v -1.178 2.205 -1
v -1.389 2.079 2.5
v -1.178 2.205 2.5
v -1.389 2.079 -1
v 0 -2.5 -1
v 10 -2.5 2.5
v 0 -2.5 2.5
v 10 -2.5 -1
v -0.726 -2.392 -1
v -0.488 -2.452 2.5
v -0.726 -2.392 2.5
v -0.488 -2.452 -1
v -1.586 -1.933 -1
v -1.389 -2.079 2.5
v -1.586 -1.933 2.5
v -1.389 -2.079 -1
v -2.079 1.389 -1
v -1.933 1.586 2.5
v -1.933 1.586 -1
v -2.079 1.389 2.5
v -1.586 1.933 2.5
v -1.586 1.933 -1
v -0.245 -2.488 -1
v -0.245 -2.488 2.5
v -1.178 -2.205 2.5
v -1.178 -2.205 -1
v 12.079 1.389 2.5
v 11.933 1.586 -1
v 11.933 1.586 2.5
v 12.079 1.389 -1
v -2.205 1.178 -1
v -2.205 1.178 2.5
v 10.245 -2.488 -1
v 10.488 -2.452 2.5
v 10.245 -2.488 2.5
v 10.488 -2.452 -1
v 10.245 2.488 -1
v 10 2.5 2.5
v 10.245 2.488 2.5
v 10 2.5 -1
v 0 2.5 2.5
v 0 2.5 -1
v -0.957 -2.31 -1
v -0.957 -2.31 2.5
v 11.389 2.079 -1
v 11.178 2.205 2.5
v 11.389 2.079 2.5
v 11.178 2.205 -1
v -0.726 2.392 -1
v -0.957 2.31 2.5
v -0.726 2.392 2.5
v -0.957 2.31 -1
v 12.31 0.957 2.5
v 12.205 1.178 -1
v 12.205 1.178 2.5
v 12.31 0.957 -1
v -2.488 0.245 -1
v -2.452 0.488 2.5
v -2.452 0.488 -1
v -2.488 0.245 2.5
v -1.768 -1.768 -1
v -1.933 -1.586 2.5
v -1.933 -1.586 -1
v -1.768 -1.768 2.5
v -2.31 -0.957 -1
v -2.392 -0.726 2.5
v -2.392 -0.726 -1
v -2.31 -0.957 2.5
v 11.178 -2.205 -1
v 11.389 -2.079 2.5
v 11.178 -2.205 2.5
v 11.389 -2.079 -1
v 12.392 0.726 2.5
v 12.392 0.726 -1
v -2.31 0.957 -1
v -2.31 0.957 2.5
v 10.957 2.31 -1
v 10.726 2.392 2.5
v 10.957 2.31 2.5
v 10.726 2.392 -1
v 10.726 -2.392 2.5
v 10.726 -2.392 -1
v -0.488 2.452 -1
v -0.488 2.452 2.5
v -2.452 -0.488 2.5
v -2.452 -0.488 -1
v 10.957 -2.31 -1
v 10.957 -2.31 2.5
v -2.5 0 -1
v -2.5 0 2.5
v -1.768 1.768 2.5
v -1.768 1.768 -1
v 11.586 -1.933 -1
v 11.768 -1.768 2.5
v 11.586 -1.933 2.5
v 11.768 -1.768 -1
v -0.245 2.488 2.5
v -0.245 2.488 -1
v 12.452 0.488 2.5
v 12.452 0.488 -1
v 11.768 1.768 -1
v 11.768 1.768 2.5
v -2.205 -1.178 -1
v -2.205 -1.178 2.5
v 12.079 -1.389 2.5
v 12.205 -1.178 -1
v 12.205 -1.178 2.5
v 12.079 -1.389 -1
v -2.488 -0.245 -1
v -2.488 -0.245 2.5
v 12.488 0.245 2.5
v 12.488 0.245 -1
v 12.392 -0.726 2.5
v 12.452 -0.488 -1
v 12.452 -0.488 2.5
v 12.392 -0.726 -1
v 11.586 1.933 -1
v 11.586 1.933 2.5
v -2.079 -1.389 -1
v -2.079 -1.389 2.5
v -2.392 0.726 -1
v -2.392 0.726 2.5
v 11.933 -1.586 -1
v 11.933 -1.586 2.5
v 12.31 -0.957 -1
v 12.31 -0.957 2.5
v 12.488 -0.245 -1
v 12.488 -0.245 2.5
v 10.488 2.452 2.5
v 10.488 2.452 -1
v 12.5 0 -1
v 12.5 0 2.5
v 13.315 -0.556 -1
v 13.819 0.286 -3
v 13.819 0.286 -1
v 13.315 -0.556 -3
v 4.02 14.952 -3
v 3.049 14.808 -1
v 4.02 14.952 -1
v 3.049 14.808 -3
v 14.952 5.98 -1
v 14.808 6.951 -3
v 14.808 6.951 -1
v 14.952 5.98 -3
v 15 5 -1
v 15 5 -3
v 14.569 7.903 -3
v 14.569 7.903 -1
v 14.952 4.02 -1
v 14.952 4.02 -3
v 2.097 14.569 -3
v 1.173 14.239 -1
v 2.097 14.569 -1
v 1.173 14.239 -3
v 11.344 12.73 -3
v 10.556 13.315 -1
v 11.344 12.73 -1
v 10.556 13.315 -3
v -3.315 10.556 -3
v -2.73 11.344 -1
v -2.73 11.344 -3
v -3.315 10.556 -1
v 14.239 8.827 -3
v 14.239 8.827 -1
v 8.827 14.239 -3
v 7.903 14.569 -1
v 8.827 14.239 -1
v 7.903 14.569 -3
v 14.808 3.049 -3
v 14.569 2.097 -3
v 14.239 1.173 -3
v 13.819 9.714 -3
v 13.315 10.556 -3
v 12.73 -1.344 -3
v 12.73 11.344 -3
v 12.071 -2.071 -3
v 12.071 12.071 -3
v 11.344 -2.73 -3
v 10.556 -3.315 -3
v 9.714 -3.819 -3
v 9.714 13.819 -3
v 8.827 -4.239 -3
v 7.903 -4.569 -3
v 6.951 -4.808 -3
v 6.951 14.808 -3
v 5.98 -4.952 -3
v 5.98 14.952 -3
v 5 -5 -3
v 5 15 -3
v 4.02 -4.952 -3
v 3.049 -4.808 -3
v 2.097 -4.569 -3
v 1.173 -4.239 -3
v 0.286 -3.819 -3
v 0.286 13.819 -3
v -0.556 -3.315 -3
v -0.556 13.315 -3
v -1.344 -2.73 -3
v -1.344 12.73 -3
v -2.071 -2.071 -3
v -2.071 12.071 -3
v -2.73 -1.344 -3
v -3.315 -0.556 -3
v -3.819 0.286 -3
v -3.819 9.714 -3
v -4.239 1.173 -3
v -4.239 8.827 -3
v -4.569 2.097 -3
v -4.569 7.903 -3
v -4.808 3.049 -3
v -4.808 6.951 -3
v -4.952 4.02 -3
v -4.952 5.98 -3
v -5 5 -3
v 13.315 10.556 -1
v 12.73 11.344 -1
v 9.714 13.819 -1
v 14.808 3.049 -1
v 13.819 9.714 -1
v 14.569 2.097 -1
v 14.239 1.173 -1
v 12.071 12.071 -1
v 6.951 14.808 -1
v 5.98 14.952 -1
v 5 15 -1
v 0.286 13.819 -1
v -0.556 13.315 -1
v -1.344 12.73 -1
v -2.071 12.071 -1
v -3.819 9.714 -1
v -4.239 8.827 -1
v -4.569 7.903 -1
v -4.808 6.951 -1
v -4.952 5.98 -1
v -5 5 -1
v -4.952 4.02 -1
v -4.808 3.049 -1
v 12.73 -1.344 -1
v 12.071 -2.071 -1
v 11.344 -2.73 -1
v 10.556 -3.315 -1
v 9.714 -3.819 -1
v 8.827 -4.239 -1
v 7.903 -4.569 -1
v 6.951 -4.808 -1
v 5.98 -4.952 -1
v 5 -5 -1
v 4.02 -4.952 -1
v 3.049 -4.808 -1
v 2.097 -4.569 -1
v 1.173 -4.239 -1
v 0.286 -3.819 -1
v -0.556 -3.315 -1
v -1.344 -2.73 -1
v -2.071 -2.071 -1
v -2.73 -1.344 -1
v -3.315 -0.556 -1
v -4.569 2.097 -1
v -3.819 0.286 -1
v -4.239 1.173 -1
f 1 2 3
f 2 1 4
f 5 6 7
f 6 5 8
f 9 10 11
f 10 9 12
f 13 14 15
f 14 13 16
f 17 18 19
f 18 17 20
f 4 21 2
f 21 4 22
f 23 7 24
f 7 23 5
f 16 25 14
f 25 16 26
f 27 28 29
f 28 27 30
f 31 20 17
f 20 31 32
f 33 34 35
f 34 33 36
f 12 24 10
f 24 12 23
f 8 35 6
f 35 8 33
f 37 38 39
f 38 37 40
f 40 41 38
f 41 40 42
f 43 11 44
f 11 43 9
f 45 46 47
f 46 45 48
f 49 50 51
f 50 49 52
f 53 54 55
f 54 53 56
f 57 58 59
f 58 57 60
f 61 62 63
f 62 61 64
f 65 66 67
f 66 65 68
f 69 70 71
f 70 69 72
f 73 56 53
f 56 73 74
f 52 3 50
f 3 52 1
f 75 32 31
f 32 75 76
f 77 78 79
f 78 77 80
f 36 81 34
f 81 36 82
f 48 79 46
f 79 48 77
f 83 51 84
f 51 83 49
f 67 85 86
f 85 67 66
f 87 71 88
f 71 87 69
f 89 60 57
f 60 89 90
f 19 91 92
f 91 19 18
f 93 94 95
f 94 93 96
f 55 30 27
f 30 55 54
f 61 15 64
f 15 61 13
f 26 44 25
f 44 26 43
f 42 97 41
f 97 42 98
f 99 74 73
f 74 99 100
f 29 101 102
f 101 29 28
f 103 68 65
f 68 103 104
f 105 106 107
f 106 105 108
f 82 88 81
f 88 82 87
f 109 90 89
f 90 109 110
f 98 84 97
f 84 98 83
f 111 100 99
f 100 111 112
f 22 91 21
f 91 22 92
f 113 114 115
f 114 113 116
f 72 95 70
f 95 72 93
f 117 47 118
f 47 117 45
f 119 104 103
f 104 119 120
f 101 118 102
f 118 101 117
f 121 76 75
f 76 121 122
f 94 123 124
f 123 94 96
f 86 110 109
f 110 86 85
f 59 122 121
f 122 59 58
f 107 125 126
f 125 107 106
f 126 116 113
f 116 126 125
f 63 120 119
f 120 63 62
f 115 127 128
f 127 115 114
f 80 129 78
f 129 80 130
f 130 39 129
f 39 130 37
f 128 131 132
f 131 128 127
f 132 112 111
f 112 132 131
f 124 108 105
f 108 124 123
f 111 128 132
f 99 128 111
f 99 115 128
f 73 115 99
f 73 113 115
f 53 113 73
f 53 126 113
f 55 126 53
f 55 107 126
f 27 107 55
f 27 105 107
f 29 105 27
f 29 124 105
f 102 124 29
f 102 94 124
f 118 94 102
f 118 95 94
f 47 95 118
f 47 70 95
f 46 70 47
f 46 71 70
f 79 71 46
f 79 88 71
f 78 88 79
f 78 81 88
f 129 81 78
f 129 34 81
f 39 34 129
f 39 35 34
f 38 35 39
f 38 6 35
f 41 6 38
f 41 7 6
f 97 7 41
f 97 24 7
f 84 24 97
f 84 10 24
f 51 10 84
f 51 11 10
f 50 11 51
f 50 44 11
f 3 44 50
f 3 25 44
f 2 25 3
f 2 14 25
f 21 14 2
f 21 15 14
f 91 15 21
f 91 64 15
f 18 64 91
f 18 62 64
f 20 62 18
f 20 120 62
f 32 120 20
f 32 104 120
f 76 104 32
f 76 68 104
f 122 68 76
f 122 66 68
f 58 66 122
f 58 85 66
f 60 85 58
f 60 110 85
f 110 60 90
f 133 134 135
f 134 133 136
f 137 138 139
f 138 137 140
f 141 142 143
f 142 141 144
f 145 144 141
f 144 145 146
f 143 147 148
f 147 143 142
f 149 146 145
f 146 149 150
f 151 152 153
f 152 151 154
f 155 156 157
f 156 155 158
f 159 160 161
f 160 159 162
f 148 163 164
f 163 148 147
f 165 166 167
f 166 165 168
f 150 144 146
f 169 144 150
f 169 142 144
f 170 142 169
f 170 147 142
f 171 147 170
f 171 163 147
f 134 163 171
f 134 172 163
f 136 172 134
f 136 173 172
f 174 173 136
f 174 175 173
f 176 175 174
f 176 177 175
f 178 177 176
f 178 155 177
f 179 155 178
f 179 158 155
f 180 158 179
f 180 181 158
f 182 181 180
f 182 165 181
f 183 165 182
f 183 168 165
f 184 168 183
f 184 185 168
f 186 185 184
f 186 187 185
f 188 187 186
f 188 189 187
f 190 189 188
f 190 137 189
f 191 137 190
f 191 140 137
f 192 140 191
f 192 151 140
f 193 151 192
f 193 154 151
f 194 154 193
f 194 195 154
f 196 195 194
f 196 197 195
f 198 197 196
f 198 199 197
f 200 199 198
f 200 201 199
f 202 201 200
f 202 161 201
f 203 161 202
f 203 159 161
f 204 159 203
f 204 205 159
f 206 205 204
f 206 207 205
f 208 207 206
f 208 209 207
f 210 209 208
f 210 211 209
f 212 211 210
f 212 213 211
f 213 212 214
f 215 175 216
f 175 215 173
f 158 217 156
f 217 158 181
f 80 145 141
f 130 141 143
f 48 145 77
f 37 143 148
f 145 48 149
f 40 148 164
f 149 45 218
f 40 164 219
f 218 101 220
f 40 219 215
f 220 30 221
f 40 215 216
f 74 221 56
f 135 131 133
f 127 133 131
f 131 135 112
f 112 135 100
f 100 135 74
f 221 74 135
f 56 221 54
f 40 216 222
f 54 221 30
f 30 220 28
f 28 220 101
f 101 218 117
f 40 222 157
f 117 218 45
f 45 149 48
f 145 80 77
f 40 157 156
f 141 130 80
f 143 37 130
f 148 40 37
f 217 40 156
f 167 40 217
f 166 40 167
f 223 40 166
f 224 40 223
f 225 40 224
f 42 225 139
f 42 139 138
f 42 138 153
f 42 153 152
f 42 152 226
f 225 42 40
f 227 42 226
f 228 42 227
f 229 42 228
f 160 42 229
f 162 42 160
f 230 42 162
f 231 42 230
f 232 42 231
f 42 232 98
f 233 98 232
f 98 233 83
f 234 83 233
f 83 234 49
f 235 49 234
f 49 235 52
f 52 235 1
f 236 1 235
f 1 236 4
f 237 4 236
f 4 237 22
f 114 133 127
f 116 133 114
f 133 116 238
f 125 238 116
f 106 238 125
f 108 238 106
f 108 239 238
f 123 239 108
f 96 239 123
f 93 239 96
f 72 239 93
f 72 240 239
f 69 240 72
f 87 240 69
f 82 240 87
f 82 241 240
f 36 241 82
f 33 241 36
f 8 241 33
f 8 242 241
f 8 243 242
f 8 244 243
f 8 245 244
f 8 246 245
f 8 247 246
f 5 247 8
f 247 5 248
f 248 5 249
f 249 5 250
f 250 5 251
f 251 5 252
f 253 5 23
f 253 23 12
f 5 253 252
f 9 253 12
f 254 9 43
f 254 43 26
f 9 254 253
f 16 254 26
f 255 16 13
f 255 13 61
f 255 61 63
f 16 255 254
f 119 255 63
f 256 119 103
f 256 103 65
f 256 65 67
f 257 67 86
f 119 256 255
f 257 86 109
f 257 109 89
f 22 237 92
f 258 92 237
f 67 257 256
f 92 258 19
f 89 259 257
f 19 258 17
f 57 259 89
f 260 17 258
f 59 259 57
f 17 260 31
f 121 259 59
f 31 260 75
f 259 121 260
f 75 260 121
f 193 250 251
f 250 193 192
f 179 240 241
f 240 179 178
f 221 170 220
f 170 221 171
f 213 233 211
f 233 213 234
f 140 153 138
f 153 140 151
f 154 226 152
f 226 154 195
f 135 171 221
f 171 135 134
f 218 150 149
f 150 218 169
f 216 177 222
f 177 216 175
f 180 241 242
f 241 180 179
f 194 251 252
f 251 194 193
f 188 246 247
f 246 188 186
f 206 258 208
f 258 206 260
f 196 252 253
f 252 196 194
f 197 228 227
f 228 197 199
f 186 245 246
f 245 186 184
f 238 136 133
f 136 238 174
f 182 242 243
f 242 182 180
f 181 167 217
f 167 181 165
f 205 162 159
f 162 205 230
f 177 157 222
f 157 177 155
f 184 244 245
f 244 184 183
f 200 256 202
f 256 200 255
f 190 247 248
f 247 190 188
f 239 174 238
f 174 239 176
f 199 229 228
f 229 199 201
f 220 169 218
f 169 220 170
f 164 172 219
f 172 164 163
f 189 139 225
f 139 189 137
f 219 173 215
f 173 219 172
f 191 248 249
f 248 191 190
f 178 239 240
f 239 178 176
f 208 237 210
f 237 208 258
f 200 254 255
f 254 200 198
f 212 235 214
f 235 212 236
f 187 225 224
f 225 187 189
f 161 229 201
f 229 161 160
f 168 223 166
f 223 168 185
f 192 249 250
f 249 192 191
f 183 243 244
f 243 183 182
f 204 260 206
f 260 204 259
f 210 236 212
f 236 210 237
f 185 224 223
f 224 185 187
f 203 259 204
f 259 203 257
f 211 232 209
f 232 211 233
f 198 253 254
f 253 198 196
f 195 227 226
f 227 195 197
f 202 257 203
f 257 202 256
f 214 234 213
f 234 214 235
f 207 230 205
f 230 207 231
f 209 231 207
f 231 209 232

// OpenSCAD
$fn=64;

diam = 5;
dist= 10;
height = 5;

hull(){
    cylinder(h=height, d=diam, center=true);

    translate([dist,0,0])
    cylinder(h=height, d=diam, center=true);
}
translate([dist/2,dist/2,-2])
cylinder(h=2, d=dist*2, center=true);
